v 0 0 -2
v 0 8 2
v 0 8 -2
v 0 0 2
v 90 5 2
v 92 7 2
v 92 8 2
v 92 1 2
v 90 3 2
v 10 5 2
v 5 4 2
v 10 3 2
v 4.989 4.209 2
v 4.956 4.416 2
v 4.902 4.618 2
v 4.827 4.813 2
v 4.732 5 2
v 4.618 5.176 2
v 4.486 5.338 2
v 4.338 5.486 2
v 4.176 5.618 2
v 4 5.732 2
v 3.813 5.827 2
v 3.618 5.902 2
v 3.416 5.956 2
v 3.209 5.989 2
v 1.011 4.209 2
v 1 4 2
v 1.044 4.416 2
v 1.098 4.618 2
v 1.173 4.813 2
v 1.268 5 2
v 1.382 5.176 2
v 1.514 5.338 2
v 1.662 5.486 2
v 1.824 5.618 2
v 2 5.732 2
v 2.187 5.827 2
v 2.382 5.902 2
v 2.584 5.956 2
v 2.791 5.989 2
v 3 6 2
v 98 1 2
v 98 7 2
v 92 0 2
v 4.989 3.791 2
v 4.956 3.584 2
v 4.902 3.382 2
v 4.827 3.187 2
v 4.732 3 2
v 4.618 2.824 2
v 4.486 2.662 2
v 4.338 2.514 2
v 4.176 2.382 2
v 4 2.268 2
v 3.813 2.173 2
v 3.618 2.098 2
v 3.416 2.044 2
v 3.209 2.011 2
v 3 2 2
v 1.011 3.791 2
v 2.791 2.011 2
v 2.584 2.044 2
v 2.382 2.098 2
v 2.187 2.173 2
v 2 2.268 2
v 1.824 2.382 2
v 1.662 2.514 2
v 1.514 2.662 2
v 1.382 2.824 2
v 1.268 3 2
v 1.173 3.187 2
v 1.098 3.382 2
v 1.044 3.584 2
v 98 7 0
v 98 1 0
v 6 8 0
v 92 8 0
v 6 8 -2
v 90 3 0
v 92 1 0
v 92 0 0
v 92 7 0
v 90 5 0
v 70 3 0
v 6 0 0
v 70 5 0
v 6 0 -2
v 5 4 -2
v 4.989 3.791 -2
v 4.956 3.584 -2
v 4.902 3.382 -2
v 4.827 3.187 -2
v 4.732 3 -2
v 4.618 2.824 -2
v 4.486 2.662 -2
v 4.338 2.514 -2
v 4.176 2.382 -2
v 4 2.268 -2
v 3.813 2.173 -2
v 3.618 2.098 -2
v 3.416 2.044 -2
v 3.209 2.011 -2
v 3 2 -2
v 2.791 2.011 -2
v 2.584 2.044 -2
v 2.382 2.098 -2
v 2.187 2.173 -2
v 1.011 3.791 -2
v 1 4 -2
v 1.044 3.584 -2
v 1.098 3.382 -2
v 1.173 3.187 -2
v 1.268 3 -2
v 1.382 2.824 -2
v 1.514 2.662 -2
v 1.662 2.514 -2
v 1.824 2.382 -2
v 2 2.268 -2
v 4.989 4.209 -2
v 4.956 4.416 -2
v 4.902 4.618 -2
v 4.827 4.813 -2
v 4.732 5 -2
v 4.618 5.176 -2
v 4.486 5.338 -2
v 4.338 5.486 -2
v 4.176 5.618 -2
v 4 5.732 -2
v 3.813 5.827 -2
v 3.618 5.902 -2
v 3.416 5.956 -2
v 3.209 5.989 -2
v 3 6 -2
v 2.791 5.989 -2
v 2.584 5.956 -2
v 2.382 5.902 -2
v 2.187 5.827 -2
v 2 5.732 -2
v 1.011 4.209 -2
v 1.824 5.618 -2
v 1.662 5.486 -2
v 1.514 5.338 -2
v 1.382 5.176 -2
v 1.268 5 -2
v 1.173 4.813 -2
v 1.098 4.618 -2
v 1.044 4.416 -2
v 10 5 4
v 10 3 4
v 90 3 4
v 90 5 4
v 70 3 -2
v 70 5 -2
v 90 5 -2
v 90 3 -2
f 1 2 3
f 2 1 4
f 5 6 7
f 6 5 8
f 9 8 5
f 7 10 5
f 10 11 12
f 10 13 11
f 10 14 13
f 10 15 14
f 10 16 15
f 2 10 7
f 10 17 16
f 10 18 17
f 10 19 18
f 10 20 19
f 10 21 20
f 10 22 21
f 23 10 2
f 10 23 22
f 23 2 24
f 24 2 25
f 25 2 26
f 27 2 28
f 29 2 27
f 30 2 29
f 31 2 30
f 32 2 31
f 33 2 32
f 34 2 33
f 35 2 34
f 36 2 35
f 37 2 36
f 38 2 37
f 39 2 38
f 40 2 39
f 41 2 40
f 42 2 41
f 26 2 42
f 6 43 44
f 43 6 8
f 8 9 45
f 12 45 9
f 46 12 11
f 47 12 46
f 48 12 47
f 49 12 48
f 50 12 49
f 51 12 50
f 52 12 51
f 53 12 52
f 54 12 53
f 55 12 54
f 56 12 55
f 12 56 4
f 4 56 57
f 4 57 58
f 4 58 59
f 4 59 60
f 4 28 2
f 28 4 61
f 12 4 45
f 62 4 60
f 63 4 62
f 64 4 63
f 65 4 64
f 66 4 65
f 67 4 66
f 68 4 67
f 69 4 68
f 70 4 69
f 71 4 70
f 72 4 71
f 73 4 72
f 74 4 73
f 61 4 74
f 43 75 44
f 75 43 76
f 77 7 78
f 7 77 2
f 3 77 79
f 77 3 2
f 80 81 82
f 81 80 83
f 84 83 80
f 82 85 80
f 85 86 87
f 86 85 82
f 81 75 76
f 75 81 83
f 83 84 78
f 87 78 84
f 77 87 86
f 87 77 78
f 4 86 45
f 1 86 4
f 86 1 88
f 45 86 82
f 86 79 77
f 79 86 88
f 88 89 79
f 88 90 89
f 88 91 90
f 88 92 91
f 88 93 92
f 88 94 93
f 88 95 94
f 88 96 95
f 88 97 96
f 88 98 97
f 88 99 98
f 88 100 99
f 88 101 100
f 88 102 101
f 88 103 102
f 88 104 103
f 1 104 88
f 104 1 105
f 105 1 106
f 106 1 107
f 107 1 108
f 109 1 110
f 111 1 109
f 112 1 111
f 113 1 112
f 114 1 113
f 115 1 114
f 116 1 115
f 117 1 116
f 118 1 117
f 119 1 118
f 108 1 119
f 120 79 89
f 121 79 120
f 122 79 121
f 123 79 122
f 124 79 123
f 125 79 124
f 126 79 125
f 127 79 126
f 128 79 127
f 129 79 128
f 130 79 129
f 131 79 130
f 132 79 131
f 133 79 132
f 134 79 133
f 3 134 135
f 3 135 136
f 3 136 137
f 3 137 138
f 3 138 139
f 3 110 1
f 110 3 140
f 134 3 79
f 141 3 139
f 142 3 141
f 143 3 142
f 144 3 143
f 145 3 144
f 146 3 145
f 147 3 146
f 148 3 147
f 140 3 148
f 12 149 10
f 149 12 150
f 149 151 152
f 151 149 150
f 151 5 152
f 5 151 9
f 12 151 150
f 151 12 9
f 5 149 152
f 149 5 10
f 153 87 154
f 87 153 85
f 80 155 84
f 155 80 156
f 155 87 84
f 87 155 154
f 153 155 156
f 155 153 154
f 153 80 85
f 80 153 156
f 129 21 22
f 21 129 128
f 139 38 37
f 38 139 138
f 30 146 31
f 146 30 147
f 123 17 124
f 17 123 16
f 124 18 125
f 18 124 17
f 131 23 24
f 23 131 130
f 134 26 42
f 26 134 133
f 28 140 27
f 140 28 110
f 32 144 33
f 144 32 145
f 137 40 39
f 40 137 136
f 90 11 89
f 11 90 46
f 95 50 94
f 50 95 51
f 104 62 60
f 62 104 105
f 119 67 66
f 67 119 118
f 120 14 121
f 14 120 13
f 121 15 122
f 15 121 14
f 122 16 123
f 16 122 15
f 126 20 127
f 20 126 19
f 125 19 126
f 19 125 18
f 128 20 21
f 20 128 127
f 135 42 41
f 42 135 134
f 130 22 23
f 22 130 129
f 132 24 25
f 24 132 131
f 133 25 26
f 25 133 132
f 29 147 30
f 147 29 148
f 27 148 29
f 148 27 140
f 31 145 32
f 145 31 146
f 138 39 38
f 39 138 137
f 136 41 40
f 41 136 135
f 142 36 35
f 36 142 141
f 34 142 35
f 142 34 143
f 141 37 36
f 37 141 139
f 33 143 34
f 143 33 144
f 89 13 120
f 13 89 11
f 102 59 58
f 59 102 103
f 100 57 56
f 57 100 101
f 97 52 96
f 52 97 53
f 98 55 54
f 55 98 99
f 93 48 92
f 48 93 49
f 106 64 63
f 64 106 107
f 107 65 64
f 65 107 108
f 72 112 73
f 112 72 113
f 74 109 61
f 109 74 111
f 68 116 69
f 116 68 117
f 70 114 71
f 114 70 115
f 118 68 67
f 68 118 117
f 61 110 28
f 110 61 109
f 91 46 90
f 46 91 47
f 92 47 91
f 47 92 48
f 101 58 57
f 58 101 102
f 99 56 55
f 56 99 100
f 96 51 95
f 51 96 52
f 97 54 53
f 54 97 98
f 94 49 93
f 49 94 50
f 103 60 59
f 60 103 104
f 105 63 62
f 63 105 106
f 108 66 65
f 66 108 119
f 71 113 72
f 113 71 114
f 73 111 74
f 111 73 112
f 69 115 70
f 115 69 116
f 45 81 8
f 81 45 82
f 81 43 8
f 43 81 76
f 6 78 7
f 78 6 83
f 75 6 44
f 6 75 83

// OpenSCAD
difference() {
    union() {
        cube([98,8,2]);
        translate([0,0,-2]) {
            cube([6,8,2]);
        }
        
        translate([10,3,2]) {
            cube([80,2,2]);
        }
        
        translate([70,3,-2]) {
            cube([20,2,2]);
        }
    }
    translate([3,4,2]) {
        cylinder(r = 2, h = 10, center = true, $fn = 60);
    }
    
        translate([92,-2,-1]) {
            cube([7,3,5]);
        }
    
        translate([92,7,-1]) {
            cube([7,3,5]);
        }
}
